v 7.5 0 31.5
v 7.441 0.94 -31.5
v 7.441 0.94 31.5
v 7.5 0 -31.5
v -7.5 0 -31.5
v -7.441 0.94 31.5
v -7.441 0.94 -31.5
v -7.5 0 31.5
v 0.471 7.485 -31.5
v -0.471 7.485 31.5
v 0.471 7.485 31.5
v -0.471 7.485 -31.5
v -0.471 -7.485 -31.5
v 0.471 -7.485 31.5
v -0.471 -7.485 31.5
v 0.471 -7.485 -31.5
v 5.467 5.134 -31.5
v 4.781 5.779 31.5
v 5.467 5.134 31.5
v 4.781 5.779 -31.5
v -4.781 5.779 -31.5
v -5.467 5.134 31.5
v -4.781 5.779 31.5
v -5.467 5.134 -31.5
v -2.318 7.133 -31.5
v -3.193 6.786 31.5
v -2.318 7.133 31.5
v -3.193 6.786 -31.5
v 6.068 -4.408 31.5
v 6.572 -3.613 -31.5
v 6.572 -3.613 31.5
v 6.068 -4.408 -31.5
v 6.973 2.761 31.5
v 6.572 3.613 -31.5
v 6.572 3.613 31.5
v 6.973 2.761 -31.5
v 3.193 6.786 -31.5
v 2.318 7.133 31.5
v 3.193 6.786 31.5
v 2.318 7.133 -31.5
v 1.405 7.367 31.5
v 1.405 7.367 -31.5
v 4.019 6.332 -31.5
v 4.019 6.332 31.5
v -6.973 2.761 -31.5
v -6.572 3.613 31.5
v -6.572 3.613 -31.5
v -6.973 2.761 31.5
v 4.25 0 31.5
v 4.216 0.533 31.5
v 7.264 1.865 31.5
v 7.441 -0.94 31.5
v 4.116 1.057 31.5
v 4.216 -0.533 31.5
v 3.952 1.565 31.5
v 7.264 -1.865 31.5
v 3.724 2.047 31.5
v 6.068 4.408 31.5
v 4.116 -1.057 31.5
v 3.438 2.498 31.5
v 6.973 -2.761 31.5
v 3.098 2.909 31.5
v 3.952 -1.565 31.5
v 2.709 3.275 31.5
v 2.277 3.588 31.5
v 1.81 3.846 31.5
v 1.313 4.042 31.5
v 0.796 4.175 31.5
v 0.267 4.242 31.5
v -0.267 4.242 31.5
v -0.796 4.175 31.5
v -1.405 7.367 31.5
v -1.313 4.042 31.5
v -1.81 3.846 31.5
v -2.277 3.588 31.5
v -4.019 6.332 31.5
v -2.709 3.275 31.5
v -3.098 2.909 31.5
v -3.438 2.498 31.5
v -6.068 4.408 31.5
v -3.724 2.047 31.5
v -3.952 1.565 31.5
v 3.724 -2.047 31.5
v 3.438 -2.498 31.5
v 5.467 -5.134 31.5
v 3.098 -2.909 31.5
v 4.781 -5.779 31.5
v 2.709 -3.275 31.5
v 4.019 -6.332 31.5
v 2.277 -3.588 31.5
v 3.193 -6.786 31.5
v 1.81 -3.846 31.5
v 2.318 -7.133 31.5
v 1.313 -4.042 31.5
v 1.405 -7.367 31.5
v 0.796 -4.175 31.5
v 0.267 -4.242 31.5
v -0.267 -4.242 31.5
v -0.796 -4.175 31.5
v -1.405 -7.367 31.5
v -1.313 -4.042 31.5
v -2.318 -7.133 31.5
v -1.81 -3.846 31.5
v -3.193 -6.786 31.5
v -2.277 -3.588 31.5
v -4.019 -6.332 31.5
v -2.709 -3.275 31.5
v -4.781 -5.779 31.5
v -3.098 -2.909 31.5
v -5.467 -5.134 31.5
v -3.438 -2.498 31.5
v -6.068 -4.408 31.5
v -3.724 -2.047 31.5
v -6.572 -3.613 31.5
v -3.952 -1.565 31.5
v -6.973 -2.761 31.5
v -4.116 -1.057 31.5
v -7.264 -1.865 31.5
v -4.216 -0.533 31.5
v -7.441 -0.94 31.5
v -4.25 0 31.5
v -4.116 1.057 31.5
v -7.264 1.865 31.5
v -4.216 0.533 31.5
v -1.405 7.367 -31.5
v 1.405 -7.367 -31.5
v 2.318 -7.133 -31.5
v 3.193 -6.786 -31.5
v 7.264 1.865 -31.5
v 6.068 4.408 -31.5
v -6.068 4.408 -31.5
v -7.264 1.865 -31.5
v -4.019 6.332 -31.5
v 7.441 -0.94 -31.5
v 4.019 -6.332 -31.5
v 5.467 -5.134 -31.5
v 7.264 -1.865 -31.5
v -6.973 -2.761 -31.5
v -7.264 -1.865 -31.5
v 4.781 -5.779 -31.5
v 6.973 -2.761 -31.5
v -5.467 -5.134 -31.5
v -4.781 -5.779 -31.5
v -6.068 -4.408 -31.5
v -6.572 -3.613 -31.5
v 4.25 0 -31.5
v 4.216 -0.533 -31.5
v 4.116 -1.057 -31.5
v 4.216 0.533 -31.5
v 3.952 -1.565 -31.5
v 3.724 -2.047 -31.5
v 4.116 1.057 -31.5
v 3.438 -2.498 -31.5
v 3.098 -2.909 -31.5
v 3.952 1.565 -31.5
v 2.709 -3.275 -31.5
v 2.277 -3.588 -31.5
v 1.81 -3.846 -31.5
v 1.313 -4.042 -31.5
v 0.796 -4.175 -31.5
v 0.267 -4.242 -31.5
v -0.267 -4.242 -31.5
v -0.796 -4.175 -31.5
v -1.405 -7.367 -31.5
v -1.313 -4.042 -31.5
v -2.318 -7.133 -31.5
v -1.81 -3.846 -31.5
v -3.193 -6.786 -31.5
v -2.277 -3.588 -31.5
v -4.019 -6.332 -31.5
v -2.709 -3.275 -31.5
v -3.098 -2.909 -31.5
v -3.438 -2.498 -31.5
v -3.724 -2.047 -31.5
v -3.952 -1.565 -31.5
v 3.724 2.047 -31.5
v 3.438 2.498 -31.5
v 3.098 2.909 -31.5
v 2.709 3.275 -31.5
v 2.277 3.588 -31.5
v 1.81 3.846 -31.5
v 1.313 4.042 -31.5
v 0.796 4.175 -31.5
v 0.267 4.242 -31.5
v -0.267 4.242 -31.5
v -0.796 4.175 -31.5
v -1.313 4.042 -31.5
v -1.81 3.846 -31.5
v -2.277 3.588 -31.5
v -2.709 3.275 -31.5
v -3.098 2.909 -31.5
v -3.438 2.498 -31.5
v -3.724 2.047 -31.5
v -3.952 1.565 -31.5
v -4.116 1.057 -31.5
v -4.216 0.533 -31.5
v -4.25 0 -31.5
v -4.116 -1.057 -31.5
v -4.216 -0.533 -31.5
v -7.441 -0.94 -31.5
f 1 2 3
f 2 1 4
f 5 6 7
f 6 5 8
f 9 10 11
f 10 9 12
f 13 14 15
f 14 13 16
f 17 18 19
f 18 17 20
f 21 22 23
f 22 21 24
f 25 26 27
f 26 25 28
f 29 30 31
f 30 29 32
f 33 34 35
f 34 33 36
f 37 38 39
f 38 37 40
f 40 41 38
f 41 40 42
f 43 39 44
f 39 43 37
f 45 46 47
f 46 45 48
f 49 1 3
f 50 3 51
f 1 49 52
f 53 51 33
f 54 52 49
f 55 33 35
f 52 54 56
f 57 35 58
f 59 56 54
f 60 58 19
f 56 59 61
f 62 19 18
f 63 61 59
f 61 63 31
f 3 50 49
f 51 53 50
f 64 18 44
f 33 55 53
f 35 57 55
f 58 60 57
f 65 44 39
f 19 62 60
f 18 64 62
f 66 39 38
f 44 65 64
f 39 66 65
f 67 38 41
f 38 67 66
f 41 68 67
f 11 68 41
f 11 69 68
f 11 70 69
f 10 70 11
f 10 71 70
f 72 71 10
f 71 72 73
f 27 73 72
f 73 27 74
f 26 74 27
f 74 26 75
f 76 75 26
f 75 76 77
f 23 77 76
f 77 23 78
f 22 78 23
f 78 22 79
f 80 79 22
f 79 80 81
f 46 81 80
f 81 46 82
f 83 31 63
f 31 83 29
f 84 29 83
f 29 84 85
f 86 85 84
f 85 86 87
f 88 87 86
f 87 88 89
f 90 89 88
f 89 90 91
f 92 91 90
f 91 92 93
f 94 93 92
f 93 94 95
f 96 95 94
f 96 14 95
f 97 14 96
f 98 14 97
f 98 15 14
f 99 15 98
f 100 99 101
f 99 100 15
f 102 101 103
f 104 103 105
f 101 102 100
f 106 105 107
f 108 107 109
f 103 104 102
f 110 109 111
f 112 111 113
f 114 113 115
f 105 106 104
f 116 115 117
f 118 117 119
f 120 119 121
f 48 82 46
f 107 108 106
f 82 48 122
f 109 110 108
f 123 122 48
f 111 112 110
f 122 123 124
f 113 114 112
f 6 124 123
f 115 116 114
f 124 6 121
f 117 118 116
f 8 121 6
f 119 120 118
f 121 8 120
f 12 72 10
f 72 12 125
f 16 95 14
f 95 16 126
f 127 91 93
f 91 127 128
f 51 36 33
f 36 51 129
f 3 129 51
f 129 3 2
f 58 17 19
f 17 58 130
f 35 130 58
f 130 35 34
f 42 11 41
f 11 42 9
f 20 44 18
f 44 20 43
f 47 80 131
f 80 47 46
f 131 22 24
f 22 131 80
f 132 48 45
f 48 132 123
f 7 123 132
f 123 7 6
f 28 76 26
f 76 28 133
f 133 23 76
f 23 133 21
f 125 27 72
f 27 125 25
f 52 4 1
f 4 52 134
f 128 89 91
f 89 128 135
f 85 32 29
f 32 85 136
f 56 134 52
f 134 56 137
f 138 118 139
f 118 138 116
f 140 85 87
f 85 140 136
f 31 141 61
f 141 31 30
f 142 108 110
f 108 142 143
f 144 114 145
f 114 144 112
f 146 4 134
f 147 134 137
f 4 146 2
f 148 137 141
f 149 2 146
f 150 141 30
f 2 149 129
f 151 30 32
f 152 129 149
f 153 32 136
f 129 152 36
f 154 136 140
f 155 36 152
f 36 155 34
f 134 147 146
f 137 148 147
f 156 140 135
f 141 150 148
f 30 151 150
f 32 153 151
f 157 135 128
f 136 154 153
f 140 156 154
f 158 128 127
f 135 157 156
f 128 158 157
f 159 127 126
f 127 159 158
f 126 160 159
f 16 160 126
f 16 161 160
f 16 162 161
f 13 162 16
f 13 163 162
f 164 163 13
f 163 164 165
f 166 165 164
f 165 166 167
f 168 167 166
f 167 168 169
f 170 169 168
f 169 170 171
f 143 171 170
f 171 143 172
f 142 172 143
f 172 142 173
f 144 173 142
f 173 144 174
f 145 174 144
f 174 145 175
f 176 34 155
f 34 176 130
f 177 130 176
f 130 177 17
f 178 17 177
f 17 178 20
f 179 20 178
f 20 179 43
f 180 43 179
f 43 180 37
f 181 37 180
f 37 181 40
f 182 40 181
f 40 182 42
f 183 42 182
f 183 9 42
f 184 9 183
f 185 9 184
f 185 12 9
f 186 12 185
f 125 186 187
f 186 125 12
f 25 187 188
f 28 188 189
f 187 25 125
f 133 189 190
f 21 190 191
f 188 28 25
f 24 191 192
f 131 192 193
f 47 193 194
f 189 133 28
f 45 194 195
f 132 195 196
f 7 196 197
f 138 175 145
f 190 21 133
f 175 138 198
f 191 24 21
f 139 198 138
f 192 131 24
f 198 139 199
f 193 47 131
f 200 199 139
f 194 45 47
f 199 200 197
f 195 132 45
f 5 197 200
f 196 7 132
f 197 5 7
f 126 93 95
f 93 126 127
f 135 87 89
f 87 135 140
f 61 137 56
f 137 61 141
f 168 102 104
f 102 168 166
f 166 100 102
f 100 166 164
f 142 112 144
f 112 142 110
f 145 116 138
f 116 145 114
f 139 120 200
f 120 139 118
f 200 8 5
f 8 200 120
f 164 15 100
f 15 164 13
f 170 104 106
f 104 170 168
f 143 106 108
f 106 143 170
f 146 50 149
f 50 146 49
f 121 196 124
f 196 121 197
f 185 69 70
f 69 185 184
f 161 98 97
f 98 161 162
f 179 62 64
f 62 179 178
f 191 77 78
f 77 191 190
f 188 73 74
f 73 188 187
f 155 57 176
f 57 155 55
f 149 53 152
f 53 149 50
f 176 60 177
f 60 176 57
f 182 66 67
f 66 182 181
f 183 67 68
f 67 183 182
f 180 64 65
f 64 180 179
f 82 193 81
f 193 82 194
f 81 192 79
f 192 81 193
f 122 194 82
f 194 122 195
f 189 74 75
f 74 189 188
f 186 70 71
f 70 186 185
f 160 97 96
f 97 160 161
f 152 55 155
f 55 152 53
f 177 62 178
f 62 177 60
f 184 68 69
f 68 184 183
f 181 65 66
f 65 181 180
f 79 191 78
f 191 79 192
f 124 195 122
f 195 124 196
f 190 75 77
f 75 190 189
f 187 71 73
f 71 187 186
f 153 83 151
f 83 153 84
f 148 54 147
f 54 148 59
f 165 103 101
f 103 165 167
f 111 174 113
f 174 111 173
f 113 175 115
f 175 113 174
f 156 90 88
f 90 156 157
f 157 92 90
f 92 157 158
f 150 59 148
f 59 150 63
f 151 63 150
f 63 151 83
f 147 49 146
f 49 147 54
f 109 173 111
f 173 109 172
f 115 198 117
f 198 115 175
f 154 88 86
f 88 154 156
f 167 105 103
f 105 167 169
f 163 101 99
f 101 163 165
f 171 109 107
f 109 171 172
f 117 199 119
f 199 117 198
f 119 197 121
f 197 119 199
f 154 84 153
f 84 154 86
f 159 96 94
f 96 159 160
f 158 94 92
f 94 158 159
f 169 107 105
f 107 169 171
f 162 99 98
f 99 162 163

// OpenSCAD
$fn = 50;


difference() {
	union() {
		translate(v = [0, 0, -31.5000000000]) {
			cylinder(h = 63, r = 7.5000000000);
		}
	}
	union() {
		translate(v = [0, 0, -100.0000000000]) {
			cylinder(h = 200, r = 4.2500000000);
		}
	}
}
